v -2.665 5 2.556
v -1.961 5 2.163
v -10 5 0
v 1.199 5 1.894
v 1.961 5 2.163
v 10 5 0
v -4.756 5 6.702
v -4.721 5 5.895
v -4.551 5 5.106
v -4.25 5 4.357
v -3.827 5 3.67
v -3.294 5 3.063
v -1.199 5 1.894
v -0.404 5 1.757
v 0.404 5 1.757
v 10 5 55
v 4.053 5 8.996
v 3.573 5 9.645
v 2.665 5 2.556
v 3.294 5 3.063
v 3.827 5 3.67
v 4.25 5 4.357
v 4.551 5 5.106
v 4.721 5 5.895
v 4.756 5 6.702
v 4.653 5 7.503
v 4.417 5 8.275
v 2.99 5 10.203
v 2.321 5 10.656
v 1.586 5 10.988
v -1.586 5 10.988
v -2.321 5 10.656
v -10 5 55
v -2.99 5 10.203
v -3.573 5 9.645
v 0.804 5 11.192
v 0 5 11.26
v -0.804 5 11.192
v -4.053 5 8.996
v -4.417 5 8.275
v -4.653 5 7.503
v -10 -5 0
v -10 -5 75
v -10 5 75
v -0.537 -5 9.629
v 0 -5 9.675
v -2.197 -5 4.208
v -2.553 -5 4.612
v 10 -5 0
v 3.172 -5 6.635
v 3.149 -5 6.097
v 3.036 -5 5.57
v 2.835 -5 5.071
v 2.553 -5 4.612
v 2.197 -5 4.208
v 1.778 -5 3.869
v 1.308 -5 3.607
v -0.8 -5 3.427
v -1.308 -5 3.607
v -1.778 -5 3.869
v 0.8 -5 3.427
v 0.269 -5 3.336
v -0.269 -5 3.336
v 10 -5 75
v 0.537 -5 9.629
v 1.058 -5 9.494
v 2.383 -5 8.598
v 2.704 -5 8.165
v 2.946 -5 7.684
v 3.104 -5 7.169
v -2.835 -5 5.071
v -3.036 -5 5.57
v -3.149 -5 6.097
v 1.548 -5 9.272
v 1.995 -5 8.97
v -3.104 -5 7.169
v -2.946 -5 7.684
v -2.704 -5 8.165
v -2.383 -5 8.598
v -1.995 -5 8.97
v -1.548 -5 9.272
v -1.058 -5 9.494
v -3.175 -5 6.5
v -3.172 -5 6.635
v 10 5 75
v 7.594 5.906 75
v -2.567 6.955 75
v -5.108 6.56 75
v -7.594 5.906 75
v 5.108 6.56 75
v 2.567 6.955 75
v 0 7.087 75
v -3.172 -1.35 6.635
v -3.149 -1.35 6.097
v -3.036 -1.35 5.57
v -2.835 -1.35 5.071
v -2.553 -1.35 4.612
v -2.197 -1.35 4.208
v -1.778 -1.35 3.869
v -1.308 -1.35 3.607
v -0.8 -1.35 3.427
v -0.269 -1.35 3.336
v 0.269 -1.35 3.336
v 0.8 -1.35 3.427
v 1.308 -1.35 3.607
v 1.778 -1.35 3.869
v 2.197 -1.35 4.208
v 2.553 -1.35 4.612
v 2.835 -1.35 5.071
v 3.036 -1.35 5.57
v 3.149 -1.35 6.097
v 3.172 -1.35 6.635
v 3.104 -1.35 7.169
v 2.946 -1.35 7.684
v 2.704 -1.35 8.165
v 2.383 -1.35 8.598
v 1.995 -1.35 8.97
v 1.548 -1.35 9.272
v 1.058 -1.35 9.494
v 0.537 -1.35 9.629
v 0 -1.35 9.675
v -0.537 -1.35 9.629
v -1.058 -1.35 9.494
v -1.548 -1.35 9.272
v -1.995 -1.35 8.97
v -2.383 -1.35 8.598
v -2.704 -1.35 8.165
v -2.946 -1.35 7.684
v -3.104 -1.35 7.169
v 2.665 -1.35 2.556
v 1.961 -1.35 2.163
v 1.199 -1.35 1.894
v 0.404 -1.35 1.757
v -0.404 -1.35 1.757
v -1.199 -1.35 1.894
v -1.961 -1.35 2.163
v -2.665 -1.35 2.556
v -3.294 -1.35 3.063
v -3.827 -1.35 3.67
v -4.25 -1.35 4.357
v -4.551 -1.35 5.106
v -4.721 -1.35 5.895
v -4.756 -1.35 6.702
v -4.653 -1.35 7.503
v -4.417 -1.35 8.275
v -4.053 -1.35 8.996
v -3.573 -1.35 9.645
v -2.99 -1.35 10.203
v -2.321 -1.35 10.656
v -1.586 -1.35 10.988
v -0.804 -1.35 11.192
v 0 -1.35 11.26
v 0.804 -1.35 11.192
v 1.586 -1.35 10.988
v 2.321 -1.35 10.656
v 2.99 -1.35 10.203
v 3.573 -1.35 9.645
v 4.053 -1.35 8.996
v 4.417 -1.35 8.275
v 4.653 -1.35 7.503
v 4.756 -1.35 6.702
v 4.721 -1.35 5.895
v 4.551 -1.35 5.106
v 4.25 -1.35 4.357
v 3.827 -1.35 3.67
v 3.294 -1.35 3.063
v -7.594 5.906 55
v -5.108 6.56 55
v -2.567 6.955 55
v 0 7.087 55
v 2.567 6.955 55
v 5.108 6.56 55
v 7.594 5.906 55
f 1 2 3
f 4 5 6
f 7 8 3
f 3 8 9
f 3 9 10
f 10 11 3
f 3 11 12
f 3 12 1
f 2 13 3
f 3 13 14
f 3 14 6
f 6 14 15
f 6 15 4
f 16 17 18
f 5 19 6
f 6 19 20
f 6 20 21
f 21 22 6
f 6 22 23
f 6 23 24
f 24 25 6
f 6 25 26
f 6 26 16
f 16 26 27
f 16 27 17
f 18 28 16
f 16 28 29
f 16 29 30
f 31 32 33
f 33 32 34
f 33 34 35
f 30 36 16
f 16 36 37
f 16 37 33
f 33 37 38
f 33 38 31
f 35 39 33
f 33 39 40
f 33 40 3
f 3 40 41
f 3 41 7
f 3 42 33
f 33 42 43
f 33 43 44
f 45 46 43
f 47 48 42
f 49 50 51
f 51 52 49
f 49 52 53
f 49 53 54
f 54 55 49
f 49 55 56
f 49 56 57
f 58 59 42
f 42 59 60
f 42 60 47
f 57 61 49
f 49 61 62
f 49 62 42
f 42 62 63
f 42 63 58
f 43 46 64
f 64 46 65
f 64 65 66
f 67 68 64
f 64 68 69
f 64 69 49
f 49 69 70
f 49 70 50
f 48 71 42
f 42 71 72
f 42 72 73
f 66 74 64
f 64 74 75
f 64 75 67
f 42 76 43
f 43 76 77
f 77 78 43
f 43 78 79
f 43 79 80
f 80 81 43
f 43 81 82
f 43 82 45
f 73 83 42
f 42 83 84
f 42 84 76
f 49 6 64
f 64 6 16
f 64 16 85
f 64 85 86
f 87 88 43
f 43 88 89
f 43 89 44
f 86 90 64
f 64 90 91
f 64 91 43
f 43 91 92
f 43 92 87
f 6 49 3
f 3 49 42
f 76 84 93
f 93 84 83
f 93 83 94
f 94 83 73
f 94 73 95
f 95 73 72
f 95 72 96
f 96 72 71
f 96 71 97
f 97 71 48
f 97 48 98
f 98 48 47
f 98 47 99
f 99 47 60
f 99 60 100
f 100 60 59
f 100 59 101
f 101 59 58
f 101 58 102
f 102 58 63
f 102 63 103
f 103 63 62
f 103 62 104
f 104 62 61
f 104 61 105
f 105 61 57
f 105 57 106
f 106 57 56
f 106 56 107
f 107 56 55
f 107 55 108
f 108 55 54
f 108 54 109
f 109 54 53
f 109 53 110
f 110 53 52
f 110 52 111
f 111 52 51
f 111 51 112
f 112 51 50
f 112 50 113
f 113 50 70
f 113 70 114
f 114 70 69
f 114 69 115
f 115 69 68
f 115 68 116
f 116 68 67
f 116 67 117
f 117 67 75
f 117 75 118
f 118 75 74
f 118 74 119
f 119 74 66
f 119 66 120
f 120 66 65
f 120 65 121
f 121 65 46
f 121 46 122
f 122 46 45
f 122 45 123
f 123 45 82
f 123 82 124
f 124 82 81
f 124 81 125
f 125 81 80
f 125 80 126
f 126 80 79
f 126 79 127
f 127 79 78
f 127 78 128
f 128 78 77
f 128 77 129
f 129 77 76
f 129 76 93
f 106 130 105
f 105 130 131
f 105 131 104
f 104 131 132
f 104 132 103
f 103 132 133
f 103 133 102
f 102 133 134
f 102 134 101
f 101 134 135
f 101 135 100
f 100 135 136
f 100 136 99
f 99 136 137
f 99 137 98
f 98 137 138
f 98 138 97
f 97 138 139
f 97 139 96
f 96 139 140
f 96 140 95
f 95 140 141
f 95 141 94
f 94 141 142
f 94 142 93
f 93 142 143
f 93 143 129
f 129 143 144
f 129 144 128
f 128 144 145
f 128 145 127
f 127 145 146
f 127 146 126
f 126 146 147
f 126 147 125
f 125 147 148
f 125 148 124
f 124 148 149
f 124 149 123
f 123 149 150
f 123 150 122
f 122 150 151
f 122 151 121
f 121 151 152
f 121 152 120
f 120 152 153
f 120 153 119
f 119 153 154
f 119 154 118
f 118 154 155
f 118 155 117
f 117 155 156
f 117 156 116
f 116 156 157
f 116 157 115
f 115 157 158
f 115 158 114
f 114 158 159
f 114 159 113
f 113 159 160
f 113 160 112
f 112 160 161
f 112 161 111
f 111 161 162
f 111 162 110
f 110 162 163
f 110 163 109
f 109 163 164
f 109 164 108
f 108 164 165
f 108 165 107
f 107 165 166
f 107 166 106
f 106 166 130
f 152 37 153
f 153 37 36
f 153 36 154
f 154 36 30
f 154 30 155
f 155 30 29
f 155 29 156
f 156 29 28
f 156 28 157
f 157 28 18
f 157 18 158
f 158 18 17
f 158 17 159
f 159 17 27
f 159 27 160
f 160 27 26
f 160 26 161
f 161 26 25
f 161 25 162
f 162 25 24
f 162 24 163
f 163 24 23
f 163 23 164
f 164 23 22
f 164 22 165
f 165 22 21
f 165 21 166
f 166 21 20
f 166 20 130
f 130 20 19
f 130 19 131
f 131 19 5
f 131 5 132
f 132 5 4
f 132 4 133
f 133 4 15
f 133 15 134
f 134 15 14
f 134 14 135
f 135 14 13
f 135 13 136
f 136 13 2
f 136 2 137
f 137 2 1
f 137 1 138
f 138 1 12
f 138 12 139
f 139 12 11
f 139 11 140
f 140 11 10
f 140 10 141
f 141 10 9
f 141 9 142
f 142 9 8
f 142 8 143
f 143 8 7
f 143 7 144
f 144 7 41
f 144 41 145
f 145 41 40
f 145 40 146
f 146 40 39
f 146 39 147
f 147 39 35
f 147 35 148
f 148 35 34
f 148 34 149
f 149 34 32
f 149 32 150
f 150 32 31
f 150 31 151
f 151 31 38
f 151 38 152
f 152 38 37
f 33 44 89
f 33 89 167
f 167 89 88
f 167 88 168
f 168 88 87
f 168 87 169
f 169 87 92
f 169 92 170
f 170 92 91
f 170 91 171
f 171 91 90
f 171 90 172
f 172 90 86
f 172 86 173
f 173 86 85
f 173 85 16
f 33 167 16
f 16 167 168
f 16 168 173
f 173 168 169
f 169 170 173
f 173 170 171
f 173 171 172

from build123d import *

# Parameters (mm, degrees)
ESBO_O1_W                = 20
ESBO_O1_H                = 10
RESSALTO_EXTRUS_O1_DEPTH = 75
FURO1_D                  = 6.35
FURO1_DEPTH              = 14.916024102
FURO1_CBORE_D            = 9.52
FURO1_CBORE_DEPTH        = 6.35
RESSALTO_EXTRUS_O2_DEPTH = 20


with BuildPart() as part:
    # Esboço1 → Ressalto-extrusão1 (new body)
    with BuildSketch(Plane.XY):
        Rectangle(ESBO_O1_W, ESBO_O1_H)
    extrude(amount=RESSALTO_EXTRUS_O1_DEPTH)

    # Furo1
    with Locations(Plane(origin=(0, 5, 0), x_dir=(1, 0, 0), z_dir=(0, 1, 0))):
        with Locations((0, -6.5)):
            CounterBoreHole(FURO1_D / 2, FURO1_CBORE_D / 2, FURO1_CBORE_DEPTH, depth=FURO1_DEPTH)

    # Esboço4 → Ressalto-extrusão2 (add)
    with BuildSketch(Plane.XY.offset(75)):
        with BuildLine():
            Line((-10, 5), (10, 5))
            ThreePointArc((10, 5), (0, 7.087121525), (-10, 5))
        make_face()
    extrude(amount=-RESSALTO_EXTRUS_O2_DEPTH)


solid = part.part
